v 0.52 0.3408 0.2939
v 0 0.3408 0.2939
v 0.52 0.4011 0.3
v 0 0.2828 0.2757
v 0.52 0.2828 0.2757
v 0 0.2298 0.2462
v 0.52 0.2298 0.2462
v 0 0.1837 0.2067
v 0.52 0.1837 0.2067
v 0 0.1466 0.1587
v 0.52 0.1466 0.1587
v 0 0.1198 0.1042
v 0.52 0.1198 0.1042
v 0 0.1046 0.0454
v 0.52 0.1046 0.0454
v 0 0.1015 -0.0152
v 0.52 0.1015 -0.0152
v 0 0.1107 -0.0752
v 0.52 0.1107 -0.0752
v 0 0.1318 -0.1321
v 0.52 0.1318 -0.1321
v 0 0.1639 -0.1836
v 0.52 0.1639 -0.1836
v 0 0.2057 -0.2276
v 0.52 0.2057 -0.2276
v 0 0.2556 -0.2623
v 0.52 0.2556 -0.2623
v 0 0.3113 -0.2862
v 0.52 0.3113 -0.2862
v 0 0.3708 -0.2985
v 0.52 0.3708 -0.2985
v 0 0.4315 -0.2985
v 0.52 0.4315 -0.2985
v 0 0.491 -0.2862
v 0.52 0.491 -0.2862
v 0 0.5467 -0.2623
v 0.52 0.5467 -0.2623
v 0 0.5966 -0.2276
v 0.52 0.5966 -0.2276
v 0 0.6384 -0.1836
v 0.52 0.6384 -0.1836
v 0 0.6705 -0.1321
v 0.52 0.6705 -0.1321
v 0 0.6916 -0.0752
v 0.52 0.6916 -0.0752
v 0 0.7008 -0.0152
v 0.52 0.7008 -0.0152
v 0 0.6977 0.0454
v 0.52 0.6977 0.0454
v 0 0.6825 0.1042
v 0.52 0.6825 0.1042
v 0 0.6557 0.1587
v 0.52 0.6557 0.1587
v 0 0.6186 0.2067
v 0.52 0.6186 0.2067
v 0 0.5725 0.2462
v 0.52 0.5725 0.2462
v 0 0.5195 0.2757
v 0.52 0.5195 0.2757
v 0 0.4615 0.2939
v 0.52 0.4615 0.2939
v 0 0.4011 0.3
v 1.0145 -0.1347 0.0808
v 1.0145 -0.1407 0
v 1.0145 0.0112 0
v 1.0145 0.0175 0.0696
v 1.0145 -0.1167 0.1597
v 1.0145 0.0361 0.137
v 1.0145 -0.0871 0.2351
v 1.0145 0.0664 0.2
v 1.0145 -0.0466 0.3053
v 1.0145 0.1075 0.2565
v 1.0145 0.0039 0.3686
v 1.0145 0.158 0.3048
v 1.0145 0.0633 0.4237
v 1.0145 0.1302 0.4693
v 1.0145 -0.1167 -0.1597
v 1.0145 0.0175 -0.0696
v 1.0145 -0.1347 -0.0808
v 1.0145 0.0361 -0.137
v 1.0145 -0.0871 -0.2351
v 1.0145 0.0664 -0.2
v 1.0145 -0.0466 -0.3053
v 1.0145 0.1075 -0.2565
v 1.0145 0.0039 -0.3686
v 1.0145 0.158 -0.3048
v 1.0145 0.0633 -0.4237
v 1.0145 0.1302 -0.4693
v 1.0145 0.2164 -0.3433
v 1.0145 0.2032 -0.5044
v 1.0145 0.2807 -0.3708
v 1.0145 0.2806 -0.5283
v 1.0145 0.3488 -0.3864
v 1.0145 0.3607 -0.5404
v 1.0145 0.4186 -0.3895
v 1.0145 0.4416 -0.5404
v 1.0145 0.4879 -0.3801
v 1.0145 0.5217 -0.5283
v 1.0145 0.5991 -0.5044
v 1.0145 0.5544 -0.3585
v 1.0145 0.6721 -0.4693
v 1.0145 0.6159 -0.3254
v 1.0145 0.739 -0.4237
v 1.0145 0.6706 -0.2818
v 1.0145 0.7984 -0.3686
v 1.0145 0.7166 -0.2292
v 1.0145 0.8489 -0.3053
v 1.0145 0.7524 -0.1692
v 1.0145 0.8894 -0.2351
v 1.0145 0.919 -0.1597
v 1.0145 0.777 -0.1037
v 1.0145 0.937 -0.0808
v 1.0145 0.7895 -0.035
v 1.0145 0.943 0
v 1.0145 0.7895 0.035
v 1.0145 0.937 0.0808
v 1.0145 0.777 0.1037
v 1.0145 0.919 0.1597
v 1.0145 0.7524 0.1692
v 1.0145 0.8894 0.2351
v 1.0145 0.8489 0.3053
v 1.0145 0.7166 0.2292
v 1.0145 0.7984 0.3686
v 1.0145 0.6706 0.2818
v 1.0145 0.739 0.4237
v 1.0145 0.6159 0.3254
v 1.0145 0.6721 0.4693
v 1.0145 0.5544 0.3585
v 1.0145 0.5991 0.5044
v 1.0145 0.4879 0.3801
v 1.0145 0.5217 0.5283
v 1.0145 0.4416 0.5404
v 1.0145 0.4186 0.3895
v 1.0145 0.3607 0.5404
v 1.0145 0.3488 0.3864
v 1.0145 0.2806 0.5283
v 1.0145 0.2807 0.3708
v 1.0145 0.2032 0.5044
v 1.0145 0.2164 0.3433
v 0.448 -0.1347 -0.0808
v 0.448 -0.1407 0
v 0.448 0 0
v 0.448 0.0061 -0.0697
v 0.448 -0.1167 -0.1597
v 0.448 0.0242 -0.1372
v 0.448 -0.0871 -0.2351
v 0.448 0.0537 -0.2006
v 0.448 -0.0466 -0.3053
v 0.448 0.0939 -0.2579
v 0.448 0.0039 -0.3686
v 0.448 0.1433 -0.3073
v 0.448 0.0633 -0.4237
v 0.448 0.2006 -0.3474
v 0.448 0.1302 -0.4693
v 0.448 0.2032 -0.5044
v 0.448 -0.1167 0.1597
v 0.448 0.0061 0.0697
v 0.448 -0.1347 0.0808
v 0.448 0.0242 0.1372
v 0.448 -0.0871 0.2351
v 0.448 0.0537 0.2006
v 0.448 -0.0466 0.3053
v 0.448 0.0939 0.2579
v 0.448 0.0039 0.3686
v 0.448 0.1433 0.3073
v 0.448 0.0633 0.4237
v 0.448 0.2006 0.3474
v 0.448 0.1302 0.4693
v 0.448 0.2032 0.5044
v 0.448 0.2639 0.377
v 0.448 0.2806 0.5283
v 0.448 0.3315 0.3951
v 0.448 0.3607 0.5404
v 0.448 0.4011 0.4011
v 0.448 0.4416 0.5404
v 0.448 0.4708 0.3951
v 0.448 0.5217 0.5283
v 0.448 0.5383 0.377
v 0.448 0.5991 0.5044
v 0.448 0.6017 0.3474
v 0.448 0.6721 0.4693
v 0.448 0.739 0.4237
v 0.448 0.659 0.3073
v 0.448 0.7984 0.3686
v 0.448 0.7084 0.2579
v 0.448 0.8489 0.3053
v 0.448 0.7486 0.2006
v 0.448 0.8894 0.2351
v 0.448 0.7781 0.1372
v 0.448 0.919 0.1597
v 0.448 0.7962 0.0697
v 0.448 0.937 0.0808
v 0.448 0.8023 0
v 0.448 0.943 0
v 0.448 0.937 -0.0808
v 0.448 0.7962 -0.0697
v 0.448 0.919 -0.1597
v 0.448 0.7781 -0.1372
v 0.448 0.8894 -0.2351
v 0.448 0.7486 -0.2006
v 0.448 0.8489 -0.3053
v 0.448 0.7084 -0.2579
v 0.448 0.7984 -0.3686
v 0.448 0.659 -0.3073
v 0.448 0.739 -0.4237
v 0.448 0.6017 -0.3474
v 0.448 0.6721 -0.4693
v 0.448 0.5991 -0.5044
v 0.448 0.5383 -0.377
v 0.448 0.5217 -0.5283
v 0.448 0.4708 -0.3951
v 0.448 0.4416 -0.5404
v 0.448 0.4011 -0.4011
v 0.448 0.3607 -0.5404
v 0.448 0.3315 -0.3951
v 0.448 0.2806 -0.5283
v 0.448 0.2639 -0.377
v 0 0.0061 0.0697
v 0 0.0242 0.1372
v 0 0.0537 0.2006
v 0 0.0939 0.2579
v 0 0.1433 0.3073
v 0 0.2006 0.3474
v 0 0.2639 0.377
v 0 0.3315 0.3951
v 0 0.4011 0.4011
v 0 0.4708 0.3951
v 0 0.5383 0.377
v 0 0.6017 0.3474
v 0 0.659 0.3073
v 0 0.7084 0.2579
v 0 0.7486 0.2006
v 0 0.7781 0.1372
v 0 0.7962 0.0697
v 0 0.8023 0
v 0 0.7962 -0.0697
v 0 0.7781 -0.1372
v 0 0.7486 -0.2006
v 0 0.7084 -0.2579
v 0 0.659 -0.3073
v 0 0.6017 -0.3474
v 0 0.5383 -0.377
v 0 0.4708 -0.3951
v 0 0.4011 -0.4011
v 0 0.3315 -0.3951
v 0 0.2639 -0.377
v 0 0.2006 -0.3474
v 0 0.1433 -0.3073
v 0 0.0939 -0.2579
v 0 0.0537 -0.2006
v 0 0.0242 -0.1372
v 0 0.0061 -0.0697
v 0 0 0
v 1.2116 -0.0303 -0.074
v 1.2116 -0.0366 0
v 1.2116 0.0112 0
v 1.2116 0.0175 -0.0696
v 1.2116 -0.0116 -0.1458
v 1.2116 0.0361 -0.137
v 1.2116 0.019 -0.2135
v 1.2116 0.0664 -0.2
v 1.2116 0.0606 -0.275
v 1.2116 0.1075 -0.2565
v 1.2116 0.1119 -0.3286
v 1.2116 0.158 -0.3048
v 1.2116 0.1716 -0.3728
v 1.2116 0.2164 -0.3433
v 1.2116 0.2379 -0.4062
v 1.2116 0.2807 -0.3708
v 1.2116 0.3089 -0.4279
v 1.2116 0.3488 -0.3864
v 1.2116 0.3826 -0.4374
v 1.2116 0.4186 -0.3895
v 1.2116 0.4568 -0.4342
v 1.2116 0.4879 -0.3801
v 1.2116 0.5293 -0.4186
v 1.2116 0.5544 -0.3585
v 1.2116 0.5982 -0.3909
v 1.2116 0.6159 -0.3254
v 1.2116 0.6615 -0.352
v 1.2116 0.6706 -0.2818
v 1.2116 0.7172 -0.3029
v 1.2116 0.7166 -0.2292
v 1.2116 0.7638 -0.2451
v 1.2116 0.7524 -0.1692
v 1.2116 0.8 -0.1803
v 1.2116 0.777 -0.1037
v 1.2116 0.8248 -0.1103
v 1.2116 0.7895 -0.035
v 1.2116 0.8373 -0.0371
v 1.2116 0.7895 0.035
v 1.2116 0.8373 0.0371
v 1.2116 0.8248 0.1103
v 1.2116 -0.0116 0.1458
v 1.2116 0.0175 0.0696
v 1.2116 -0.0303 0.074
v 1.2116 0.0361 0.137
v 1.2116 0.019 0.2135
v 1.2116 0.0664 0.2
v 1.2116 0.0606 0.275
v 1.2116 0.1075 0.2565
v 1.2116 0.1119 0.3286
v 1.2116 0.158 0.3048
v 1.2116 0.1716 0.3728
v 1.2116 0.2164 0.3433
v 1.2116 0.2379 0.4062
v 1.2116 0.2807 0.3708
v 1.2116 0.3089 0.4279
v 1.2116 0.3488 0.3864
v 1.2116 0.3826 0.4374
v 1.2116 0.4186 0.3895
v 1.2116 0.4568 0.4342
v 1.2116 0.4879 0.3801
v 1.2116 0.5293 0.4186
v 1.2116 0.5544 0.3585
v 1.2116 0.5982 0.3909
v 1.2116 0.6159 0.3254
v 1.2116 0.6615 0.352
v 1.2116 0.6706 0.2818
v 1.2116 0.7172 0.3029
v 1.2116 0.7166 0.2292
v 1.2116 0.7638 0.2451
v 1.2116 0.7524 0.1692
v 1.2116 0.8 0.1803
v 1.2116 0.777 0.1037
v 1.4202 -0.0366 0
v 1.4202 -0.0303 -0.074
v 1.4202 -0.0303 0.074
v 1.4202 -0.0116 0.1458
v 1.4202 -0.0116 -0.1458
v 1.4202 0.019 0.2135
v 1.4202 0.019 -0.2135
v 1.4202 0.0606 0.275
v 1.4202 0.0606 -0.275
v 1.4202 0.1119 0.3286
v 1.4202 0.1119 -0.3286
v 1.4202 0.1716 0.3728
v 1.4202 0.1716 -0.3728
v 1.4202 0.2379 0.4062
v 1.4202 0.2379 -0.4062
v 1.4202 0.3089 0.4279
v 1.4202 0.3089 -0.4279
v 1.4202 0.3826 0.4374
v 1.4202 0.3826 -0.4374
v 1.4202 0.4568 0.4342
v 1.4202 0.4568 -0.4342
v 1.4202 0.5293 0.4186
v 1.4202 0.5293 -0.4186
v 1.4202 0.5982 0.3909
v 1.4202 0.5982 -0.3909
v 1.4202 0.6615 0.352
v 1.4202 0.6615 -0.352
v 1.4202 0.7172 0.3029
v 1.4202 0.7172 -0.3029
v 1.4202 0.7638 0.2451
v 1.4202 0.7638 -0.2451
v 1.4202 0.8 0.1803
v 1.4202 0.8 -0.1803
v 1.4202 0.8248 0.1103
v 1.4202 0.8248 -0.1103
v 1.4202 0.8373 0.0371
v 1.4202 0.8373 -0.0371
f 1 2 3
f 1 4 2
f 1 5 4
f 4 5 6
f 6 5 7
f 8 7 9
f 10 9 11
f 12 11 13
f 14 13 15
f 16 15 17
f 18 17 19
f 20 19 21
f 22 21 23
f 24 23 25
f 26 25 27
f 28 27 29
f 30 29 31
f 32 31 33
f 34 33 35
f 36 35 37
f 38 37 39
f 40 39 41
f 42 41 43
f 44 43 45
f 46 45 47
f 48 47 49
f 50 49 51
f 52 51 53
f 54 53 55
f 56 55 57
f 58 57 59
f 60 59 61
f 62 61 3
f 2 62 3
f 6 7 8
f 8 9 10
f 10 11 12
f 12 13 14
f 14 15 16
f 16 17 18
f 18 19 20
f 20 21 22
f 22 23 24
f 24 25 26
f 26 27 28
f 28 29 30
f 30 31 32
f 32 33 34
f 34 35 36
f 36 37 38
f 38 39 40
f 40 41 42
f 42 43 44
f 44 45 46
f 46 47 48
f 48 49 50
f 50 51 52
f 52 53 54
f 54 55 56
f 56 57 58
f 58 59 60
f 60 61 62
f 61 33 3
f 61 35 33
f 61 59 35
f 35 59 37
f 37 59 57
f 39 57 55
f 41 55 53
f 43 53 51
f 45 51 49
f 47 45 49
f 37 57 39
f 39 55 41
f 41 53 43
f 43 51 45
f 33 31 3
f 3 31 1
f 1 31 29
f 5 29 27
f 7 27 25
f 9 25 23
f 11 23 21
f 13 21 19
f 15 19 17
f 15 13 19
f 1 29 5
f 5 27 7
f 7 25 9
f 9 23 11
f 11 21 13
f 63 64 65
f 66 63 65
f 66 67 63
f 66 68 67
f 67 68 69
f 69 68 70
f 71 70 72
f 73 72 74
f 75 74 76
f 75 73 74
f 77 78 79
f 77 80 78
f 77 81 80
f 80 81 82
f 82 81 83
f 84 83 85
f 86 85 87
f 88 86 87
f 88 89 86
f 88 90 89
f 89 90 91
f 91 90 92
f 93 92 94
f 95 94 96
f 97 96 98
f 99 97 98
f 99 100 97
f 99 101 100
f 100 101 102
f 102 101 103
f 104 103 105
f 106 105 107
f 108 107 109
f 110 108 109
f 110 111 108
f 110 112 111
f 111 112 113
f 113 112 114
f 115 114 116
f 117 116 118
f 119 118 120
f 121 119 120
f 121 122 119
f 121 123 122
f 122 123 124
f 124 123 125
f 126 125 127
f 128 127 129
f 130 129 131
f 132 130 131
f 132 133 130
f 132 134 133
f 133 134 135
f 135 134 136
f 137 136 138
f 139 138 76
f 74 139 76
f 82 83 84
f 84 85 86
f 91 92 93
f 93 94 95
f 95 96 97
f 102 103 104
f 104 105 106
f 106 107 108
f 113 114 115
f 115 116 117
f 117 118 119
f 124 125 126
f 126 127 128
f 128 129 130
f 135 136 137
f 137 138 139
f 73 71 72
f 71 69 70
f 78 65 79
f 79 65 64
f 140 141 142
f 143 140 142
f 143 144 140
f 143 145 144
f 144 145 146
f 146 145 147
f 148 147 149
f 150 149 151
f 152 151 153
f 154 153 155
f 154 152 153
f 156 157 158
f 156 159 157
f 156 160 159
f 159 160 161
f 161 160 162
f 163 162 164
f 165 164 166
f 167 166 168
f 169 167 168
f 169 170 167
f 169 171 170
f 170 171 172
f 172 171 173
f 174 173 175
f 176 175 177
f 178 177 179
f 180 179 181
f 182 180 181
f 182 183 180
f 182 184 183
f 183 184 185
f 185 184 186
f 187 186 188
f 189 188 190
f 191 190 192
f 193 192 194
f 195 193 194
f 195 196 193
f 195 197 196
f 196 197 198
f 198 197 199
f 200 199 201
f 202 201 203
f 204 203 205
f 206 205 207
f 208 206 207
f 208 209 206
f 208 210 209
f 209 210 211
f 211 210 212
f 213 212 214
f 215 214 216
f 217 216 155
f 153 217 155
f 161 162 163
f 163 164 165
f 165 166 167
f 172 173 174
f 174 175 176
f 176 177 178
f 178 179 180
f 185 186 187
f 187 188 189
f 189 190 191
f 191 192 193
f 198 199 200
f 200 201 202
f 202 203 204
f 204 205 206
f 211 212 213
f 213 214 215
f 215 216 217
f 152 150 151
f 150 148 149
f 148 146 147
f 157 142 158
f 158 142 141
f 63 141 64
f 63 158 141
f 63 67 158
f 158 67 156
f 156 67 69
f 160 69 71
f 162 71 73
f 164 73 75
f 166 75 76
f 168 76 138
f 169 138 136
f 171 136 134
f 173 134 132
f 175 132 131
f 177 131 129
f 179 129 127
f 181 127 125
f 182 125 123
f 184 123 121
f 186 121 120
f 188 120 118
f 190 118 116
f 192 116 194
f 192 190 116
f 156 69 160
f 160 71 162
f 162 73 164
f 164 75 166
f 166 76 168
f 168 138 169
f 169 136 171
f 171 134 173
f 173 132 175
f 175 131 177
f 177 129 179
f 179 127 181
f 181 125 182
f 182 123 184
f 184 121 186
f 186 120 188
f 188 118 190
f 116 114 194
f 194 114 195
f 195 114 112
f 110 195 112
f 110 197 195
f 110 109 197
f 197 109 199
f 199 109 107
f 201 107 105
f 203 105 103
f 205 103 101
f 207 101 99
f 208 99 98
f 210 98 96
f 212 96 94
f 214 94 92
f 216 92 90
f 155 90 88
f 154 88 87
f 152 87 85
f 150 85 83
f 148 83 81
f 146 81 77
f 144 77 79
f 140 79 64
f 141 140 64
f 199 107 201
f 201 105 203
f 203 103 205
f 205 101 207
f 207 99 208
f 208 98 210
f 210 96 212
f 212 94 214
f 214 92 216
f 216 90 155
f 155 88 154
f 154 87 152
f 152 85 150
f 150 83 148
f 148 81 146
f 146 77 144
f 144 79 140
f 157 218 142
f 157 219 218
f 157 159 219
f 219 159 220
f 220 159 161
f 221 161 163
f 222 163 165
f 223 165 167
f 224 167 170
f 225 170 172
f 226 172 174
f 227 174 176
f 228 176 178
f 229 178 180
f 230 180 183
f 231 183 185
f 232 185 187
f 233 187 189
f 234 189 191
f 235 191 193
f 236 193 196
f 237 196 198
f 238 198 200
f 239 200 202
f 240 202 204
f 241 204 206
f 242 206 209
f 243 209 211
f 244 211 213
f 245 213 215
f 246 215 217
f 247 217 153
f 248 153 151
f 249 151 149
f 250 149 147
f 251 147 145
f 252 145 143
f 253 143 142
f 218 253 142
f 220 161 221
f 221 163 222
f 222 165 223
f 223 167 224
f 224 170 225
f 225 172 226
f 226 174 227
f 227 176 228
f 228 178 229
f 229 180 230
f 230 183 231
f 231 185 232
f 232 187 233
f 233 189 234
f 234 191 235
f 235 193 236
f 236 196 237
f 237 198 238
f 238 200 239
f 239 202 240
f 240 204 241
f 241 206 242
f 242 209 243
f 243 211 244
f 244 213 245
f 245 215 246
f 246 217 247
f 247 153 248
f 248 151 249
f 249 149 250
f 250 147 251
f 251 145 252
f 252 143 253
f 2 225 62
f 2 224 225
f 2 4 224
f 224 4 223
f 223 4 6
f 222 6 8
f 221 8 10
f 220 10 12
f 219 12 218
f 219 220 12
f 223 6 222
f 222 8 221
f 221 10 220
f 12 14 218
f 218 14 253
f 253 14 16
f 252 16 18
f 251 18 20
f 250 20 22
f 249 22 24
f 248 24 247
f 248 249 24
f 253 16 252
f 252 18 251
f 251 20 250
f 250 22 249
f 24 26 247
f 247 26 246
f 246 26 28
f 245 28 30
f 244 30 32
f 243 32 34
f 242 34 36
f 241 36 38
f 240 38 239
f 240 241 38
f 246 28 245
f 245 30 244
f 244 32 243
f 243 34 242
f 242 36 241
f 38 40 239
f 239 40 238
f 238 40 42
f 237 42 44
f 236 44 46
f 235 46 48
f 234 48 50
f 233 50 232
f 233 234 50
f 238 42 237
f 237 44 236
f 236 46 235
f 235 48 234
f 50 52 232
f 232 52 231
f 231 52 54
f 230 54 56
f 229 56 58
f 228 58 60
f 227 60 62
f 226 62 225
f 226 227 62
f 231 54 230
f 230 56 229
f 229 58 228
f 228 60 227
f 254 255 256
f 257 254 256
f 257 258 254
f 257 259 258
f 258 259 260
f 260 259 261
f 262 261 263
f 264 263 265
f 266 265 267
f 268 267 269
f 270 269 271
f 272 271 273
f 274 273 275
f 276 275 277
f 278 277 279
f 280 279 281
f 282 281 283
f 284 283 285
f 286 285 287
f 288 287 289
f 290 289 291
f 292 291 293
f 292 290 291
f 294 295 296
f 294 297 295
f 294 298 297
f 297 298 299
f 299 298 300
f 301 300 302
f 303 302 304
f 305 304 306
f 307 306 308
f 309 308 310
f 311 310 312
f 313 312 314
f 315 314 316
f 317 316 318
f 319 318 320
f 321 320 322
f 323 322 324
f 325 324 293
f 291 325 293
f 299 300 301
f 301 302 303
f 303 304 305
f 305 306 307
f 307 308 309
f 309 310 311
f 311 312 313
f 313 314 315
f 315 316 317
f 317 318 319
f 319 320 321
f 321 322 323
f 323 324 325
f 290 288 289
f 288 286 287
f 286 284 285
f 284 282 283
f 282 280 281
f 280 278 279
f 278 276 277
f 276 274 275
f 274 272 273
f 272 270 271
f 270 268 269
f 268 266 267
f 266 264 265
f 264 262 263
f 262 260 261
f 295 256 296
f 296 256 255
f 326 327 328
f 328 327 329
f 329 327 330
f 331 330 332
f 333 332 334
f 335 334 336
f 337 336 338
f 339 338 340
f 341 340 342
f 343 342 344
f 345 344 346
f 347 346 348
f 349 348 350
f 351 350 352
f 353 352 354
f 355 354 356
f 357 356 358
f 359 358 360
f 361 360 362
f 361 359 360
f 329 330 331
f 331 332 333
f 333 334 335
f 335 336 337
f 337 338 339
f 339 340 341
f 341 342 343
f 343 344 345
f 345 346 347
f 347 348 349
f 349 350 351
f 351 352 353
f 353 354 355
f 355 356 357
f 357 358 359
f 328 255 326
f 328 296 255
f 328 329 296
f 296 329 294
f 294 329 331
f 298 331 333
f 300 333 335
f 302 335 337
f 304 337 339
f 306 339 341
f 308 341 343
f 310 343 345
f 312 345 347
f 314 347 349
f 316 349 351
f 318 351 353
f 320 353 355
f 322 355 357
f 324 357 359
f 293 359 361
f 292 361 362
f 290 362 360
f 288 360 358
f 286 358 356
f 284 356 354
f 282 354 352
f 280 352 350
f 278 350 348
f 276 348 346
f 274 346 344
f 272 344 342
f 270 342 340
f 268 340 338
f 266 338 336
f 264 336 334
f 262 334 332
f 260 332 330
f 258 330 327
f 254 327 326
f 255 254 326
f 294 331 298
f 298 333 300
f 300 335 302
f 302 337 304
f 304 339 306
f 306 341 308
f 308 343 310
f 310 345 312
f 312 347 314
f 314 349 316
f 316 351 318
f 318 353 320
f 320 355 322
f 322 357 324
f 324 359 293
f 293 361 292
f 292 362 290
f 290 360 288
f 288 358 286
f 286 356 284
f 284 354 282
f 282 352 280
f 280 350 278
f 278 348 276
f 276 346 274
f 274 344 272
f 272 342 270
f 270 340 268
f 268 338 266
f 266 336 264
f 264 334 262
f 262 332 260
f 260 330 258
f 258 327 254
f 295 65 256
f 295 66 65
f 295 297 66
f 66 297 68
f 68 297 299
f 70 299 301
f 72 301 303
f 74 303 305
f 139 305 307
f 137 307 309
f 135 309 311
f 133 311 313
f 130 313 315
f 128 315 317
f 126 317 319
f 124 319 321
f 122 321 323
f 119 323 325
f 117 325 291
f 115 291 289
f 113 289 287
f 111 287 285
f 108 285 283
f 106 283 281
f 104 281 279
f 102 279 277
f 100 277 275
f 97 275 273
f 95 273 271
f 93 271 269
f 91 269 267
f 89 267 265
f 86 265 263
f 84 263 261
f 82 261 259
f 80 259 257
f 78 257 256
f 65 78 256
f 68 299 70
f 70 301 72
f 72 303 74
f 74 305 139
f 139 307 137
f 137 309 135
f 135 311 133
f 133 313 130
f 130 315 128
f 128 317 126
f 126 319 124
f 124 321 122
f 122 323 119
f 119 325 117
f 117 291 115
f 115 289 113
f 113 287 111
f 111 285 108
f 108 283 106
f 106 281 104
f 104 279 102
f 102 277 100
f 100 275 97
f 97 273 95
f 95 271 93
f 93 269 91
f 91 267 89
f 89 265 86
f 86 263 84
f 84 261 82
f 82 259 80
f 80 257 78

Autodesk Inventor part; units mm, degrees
ref_plane "YZ Plane" through (0, 0, 0) normal (1, 0, 0) x (0, 1, 0)
ref_plane "XZ Plane" through (0, 0, 0) normal (0, 1, 0) x (-1, 0, 0)
ref_plane "XY Plane" through (0, 0, 0) normal (0, 0, 1) x (1, 0, 0)
sketch "Boceto1" plane through (0, 0, 0) normal (0, 0, 1) x (1, 0, 0)
  line L0 (0.448, 0.4011) -> (0.448, 0)
  line L1 (0.448, 0) -> (0, 0)
  line L2 (0, 0) -> (0, 0.4011)
  line L3 (1.0145, -0.1407) -> (0.448, -0.1407)
  line L4 (0.448, -0.1407) -> (0.448, 0.4011)
  line L5 (1.2116, 0.4011) -> (1.2116, 0.0112)
  line L6 (1.2116, 0.0112) -> (1.0145, 0.0112)
  line L7 (1.0145, 0.0112) -> (1.0145, 0.4011)
  line L8 (1.4202, 0.4011) -> (1.4202, -0.0366)
  line L9 (1.4202, -0.0366) -> (1.2116, -0.0366)
  line L10 (0, 0.4011) -> (1.4202, 0.4011)
  line L11 (1.2116, -0.0366) -> (1.2116, 0.4011)
  line L12 (1.0145, 0.4011) -> (1.0145, -0.1407)
revolve "Revolución1" add sketch "Boceto1" angle 360 about axis through (0, 0.4011, 0) along (1, 0, 0)
sketch "Boceto2" plane through (0, 0.4011, 0) normal (-1, 0, 0) x (0, 0, 1)
  circle A0 centre (0, 0) radius 0.4011 projected
  line L0 (0.17, 0) -> (0.17, 0.17)
  line L1 (0.17, 0.17) -> (-0.17, 0.17)
  line L2 (-0.17, 0.17) -> (-0.17, -0.17)
  line L3 (-0.17, -0.17) -> (0.17, -0.17)
  line L4 (0.17, -0.17) -> (0.17, 0)
  point P0 (0, -0.4011)
extrude "Extrusión1" cut sketch "Boceto2" against normal blind 0.28 contours L4 L3 L2 L1 L0
sketch "Boceto3" plane through (0, 0.4011, 0) normal (-1, 0, 0) x (0, 0, 1)
  line L0 (-0.17, 0.17) -> (0.17, 0.17) projected
  line L1 (0.17, 0.17) -> (0.17, 0) projected
  line L2 (0.17, 0) -> (0.17, -0.17) projected
  line L3 (0.17, -0.17) -> (-0.17, -0.17) projected
  line L4 (-0.17, -0.17) -> (-0.17, 0.17) projected
  circle A0 centre (0, 0) radius 0.4011 projected
  circle A1 centre (0, 0) radius 0.3
  point P0 (0, -0.4011)
  dimension "d9" = 0.6
extrude "Extrusión2" cut sketch "Boceto3" against normal blind 0.52 contours L0 L1 L2 L3 L4 | A1
properties part number "ET22"
